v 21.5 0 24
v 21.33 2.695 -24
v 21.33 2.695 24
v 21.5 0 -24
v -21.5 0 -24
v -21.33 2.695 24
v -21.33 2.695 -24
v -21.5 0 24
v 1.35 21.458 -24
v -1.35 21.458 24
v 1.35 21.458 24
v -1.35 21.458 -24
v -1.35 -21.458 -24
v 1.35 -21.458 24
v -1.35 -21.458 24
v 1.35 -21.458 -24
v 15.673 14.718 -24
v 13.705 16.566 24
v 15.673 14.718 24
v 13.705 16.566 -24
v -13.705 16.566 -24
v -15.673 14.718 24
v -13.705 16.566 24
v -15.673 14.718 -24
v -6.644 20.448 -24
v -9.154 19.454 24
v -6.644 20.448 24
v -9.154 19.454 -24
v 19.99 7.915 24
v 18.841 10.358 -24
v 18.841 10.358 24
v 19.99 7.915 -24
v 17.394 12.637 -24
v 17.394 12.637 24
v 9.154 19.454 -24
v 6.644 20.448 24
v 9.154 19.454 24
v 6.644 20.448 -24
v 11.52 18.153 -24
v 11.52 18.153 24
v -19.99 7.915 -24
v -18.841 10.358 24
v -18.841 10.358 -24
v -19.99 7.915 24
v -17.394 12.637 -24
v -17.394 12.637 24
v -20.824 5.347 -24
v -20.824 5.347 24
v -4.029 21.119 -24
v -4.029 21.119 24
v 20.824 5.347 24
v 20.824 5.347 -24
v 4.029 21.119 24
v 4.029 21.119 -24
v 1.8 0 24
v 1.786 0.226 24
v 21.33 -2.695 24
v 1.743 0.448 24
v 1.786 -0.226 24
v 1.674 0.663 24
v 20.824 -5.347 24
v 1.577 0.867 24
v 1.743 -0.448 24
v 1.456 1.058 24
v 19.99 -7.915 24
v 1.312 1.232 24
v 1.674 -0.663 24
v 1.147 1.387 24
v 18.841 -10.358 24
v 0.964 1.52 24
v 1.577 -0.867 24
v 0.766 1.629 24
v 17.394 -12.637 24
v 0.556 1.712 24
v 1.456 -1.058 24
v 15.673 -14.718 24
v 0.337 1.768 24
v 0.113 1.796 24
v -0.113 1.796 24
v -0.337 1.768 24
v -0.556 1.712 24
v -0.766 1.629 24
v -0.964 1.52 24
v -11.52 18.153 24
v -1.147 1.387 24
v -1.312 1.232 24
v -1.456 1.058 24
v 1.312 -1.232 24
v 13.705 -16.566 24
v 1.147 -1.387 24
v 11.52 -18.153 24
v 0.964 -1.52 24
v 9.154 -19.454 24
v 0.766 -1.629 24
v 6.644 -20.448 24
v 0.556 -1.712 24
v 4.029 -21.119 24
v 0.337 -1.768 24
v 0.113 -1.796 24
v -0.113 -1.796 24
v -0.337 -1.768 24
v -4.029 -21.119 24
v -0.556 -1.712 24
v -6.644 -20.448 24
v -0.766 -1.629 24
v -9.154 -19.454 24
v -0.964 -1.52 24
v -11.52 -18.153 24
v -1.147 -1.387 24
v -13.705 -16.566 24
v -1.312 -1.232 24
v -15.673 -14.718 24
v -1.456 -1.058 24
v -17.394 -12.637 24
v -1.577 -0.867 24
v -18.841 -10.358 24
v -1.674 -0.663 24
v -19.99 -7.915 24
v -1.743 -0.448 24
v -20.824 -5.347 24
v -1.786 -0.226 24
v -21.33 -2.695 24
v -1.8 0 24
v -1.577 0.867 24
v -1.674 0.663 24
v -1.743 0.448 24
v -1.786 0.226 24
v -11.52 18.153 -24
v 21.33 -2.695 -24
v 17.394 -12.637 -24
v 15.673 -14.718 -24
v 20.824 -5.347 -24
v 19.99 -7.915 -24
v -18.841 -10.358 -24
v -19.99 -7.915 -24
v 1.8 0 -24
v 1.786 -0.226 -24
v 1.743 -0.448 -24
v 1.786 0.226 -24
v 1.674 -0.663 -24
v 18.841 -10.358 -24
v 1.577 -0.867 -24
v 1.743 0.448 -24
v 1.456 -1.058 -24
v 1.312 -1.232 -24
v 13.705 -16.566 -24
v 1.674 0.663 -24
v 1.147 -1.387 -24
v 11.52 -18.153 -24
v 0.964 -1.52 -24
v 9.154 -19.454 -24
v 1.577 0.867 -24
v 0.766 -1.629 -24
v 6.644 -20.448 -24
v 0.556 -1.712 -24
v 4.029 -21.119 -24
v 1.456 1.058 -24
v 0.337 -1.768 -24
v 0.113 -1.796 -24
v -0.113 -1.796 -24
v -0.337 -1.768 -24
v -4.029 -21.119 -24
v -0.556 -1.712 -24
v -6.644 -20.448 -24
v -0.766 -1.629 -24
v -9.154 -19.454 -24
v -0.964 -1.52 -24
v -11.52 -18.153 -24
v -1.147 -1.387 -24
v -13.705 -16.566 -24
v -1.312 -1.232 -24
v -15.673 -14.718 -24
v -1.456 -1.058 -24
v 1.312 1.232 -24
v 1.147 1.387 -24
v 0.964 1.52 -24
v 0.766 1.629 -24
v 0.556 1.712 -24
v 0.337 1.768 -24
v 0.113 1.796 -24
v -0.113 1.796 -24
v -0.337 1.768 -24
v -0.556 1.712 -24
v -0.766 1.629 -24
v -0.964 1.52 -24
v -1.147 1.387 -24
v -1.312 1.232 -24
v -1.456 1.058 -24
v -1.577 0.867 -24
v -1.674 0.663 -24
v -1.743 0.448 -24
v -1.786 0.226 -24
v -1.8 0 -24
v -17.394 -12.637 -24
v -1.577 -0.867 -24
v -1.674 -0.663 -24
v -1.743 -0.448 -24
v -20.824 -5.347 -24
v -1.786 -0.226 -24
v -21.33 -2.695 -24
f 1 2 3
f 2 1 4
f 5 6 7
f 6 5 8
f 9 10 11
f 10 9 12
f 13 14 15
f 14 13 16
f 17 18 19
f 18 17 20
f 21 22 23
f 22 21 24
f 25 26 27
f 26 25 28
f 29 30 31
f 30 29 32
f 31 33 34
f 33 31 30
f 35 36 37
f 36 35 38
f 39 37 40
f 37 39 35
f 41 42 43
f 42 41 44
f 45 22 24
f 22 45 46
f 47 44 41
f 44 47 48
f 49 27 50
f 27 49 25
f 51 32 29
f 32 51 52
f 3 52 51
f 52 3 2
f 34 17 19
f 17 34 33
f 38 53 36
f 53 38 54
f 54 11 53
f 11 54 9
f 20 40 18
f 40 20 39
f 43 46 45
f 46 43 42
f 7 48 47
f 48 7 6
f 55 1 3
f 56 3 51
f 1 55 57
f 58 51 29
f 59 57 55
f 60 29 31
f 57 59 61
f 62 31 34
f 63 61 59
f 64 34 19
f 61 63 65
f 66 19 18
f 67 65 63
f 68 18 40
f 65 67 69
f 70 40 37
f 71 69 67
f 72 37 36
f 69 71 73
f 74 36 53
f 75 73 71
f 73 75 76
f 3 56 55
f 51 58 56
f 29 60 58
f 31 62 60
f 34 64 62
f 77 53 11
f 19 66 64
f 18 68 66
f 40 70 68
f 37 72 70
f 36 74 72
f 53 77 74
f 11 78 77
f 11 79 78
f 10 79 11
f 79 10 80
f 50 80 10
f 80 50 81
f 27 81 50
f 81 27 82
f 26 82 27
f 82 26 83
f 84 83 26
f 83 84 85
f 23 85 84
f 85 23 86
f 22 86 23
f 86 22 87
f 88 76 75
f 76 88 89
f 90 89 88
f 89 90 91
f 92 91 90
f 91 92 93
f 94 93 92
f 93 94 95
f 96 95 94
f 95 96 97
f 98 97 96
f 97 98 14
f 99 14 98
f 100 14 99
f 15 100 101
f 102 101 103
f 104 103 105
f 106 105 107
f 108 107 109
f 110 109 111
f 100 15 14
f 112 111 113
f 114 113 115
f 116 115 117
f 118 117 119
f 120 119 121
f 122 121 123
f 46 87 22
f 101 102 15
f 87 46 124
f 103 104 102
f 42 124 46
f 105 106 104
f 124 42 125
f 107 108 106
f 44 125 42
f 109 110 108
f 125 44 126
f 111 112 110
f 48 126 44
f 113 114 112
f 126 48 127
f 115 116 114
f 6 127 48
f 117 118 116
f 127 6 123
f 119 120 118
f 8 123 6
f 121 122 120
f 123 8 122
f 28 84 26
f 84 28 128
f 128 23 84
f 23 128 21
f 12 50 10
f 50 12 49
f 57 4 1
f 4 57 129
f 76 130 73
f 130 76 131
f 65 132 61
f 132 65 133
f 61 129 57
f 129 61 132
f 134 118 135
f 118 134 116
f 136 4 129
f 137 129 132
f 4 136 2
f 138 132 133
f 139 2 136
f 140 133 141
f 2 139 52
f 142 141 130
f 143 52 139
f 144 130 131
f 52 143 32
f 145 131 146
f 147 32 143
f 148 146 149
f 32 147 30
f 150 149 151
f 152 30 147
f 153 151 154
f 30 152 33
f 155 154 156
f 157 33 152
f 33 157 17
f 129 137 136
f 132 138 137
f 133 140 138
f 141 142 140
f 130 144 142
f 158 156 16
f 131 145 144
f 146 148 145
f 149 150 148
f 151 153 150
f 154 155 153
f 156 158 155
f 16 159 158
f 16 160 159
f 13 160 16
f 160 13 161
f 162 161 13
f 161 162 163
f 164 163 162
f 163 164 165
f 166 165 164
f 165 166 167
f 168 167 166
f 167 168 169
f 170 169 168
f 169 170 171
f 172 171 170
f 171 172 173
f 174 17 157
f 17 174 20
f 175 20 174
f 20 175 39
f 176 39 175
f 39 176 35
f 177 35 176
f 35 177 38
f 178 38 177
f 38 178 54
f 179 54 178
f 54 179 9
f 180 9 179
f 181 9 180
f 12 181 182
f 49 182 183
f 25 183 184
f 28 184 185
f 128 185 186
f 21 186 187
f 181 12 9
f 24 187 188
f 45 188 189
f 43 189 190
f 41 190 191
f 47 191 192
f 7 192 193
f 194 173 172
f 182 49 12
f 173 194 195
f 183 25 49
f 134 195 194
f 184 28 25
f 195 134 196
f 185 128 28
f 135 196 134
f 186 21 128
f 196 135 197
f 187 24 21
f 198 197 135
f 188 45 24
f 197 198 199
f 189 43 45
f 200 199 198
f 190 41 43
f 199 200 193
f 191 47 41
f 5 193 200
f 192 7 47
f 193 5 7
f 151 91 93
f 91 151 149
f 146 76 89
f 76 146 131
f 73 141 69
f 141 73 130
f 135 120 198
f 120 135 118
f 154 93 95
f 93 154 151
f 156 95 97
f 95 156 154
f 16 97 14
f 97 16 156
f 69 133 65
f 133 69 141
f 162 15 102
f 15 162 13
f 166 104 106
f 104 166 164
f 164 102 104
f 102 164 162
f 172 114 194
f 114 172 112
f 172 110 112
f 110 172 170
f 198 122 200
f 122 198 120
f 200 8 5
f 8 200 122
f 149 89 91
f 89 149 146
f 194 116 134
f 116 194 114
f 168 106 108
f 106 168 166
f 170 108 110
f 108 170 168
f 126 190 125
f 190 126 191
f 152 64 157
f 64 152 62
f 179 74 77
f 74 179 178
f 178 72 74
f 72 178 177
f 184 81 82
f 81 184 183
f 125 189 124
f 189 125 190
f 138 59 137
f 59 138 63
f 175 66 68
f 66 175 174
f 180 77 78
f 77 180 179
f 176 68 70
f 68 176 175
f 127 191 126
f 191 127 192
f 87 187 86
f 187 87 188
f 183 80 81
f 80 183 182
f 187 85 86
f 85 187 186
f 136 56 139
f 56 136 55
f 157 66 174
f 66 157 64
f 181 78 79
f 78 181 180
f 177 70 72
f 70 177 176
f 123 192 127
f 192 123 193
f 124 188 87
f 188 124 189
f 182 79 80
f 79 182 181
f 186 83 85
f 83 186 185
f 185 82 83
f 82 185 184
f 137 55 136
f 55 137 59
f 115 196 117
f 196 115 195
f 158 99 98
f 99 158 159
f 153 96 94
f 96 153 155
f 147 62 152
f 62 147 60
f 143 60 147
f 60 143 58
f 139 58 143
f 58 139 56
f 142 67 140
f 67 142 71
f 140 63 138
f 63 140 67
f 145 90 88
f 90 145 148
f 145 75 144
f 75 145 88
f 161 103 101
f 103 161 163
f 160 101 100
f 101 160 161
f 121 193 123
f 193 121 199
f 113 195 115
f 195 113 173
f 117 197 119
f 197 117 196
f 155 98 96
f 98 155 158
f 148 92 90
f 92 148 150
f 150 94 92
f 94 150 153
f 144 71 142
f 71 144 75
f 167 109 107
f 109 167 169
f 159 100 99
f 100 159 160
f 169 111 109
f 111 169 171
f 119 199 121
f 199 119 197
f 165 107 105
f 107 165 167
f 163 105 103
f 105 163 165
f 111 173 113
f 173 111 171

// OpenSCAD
$fn = 50;


difference() {
	union() {
		translate(v = [0, 0, -24.0000000000]) {
			cylinder(h = 48, r = 21.5000000000);
		}
	}
	union() {
		translate(v = [0, 0, -100.0000000000]) {
			cylinder(h = 200, r = 1.8000000000);
		}
	}
}
